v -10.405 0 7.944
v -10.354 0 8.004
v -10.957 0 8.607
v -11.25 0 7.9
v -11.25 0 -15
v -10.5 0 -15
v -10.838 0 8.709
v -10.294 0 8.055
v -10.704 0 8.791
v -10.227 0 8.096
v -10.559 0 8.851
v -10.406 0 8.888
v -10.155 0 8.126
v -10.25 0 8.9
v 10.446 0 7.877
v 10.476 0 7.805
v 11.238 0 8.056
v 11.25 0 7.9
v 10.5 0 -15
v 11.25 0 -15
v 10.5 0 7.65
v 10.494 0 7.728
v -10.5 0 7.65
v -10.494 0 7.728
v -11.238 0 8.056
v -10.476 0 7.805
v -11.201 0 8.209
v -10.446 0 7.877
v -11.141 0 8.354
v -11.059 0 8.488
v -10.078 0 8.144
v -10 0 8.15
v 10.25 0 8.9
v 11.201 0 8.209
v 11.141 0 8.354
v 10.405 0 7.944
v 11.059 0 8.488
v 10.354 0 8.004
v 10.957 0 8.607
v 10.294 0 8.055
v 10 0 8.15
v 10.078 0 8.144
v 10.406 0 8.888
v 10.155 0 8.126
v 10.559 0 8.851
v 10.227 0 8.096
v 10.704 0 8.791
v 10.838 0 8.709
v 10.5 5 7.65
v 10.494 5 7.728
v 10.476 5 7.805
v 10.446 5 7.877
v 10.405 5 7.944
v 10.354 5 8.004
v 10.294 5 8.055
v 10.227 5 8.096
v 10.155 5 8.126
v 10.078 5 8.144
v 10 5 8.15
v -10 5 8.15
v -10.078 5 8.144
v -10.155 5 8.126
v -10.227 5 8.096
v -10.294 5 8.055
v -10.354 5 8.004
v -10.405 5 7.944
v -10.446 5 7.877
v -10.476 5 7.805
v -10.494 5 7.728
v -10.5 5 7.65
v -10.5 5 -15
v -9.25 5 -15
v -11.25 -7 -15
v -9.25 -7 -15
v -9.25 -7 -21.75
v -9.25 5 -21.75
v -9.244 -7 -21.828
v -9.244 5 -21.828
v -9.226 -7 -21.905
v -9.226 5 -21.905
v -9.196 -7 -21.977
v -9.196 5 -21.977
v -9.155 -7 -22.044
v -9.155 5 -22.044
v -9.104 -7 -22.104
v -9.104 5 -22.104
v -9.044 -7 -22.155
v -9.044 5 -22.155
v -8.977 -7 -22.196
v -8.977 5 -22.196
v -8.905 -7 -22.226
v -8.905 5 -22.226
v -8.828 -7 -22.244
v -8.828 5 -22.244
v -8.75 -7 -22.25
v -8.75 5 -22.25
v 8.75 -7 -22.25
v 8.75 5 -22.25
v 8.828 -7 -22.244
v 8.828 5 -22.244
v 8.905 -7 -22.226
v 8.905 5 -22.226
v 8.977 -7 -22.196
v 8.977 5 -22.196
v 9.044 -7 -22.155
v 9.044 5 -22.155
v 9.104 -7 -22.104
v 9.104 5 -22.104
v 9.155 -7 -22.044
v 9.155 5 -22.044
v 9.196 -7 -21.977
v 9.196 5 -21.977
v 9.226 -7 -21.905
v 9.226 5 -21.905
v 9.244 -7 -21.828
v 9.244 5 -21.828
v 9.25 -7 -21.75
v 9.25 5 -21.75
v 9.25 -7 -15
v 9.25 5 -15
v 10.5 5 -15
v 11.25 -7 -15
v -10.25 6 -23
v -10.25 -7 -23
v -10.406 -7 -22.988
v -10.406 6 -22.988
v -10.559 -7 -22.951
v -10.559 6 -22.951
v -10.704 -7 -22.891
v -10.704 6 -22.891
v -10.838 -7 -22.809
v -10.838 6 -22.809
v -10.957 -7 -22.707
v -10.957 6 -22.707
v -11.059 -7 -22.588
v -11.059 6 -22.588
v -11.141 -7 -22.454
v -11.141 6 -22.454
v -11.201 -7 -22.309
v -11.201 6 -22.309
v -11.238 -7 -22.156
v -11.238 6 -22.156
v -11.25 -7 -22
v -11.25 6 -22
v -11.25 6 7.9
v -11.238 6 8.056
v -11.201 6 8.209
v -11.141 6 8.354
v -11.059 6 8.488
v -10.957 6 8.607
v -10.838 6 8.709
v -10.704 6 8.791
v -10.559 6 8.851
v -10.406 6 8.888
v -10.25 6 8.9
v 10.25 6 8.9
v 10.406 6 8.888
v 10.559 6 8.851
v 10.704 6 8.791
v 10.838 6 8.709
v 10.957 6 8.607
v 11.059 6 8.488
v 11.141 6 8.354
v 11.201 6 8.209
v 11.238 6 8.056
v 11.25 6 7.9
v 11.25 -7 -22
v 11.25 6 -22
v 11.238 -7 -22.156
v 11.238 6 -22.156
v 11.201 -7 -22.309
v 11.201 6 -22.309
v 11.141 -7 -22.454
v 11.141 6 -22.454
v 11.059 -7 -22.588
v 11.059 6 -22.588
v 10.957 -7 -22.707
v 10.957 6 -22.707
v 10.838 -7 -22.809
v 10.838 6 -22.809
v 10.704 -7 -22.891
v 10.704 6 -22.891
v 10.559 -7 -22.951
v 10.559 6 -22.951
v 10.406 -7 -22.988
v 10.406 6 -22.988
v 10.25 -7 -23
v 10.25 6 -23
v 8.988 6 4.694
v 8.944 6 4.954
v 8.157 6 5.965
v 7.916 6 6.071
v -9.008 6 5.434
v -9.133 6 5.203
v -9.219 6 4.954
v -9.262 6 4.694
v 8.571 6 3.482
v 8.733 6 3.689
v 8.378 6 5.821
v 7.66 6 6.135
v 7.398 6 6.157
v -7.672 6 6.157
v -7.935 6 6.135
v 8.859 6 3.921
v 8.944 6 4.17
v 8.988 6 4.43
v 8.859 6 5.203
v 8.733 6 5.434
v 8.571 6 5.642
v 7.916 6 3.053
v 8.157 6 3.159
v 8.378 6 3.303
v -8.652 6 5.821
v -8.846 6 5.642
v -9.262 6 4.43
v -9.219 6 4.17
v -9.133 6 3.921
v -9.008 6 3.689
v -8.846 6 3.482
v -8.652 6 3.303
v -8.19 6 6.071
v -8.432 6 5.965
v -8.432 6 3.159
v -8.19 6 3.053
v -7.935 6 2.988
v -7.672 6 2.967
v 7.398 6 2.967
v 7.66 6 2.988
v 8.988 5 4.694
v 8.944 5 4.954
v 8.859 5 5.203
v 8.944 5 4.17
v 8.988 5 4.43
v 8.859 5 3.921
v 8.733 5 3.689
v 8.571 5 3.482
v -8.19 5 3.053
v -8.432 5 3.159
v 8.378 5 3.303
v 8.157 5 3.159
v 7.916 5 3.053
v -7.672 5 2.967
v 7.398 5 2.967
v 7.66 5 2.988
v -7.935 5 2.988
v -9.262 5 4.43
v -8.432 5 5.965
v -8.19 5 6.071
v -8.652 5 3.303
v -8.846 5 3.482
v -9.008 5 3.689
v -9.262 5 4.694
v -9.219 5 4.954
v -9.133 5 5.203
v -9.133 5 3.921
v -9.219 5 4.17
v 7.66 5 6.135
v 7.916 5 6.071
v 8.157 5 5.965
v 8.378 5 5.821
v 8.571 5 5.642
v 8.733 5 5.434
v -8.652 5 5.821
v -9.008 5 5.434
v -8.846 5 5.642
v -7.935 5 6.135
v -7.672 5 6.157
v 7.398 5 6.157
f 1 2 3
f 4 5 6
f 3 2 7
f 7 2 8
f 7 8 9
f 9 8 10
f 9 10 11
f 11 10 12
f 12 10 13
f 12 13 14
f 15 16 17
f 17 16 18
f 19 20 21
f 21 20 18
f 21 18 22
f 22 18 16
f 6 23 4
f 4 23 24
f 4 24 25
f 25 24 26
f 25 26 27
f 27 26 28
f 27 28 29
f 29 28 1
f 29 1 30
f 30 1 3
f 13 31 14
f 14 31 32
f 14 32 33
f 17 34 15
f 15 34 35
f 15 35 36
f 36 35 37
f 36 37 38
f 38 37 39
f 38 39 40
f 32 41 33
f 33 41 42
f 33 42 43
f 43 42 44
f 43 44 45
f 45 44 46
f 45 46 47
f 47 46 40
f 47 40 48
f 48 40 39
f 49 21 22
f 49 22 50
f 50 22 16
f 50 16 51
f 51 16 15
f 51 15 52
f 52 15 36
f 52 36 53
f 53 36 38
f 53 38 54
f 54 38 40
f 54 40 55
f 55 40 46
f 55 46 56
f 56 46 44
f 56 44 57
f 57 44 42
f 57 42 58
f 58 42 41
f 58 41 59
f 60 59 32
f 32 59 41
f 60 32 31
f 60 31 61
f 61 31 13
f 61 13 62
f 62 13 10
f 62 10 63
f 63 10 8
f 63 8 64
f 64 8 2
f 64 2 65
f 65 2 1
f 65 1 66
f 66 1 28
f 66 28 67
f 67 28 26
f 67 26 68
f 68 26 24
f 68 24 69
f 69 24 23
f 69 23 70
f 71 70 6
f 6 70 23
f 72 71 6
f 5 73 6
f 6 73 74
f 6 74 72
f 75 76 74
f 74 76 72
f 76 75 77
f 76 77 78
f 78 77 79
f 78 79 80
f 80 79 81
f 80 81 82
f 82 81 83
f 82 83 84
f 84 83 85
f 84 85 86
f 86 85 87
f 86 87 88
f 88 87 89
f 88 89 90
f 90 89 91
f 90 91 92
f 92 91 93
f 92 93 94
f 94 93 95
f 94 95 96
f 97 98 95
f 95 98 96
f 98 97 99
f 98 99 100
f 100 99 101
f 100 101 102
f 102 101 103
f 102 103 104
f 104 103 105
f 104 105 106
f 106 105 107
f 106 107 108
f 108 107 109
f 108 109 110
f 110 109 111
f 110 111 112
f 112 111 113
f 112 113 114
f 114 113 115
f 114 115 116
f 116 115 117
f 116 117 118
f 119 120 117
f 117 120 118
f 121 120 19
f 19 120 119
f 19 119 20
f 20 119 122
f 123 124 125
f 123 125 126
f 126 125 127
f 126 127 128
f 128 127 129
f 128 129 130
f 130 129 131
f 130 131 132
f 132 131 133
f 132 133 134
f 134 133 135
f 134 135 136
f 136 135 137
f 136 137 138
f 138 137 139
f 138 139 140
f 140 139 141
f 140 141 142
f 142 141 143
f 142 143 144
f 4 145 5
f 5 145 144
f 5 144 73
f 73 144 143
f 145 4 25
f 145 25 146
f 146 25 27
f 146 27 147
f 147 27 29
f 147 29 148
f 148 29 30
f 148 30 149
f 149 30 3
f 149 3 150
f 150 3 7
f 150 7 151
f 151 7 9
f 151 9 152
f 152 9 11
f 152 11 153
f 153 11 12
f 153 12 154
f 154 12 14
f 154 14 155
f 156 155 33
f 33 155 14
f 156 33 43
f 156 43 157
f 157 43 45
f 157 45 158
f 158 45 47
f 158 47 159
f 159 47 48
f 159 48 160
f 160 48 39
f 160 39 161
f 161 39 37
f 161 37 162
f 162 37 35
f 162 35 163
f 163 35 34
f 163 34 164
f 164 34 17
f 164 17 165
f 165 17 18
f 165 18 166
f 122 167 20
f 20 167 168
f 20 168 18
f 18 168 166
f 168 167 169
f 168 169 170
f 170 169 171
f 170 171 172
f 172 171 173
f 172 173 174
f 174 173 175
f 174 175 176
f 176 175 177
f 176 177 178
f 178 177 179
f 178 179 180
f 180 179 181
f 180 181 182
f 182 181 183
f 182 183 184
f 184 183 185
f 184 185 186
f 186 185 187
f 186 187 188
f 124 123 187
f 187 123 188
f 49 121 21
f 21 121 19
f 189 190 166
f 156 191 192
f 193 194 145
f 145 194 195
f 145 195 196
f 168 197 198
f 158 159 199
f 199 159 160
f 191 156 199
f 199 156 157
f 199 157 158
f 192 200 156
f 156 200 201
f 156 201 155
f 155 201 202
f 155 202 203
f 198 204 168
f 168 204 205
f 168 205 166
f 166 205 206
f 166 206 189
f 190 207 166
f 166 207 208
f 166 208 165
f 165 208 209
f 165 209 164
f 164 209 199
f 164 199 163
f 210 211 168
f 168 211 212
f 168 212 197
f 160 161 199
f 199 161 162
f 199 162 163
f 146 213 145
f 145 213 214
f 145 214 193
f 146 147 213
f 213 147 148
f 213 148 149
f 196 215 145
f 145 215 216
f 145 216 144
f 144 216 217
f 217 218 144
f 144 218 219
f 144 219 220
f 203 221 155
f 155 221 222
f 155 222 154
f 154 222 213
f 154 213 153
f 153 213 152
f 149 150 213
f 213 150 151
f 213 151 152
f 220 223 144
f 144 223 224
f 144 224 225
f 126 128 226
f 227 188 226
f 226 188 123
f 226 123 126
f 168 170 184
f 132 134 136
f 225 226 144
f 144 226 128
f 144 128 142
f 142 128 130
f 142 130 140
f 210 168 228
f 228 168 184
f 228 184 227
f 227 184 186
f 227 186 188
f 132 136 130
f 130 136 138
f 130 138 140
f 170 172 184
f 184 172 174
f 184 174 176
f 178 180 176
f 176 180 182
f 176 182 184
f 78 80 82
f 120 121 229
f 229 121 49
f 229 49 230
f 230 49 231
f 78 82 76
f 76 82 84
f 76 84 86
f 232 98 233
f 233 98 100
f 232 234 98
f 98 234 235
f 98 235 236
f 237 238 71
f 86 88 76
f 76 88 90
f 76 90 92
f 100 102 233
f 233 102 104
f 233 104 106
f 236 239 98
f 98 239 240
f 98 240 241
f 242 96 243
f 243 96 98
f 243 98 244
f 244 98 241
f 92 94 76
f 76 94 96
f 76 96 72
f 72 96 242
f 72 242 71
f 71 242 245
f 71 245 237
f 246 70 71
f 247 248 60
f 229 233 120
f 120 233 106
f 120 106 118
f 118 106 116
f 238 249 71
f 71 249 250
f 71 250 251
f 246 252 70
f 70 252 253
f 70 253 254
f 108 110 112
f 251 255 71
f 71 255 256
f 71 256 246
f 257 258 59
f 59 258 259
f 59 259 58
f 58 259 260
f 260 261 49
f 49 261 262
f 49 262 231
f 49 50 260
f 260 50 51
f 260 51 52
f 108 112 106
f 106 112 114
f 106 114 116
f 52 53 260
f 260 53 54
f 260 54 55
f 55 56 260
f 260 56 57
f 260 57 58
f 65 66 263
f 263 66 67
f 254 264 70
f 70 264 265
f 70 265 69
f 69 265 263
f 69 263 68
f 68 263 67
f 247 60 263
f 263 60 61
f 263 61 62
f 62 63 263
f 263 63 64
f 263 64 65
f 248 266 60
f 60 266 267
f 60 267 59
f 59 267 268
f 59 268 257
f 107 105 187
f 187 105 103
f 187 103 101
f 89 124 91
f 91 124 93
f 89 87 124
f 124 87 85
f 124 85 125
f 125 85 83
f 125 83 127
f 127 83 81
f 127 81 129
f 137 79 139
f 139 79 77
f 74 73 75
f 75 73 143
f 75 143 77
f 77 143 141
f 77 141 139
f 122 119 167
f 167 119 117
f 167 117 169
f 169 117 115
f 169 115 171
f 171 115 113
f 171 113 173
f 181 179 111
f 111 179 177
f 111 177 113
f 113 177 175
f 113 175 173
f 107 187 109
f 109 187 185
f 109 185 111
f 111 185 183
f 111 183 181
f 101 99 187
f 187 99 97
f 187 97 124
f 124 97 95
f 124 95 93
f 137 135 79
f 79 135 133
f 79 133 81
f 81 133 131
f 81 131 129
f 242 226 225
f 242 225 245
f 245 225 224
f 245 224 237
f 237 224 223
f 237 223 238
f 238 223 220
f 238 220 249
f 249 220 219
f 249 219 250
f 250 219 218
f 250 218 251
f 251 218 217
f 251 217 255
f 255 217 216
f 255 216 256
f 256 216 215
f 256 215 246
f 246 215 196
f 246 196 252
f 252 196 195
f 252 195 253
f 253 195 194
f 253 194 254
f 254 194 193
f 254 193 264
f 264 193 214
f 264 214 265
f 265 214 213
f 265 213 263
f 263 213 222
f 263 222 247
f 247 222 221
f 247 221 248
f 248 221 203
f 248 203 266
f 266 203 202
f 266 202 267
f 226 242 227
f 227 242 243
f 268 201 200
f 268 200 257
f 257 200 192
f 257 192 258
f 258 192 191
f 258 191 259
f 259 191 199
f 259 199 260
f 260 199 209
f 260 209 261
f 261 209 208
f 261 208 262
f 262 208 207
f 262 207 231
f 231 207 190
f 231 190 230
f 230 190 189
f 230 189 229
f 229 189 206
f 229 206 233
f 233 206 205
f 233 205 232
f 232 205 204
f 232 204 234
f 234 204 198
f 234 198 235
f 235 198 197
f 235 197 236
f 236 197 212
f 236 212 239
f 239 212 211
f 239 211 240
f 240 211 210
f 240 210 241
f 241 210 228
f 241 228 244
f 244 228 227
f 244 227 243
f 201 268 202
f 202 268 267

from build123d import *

# Parameters (mm, degrees)
BOSS_EXTRUDE33_DEPTH = 5
BOSS_EXTRUDE34_START = 5
BOSS_EXTRUDE34_DEPTH = 1
BOSS_EXTRUDE35_START = -7
BOSS_EXTRUDE35_DEPTH = 7
CUT_EXTRUDE2_DEPTH   = 2


with BuildPart() as part:
    # lid → Boss-Extrude33 (new body)
    with BuildSketch(Plane(origin=(0, 0, 0), x_dir=(1, 0, 0), z_dir=(0, 1, 0))):
        with BuildLine():
            Line((-11.25, 22), (-11.25, -7.9))
            ThreePointArc((-11.25, -7.9), (-10.957106781, -8.607106781), (-10.25, -8.9))
            Line((-10.25, -8.9), (10.25, -8.9))
            ThreePointArc((10.25, -8.9), (10.957106781, -8.607106781), (11.25, -7.9))
            Line((11.25, -7.9), (11.25, 22))
            ThreePointArc((11.25, 22), (10.957106781, 22.707106781), (10.25, 23))
            Line((10.25, 23), (-10.25, 23))
            ThreePointArc((-10.25, 23), (-10.957106781, 22.707106781), (-11.25, 22))
        make_face()
        with BuildLine():
            Line((9.25, 21.75), (9.25, 15))
            Line((9.25, 15), (10.5, 15))
            Line((10.5, 15), (10.5, -7.65))
            ThreePointArc((10.5, -7.65), (10.353553391, -8.003553391), (10, -8.15))
            Line((10, -8.15), (-10, -8.15))
            ThreePointArc((-10, -8.15), (-10.353553391, -8.003553391), (-10.5, -7.65))
            Line((-10.5, -7.65), (-10.5, 15))
            Line((-10.5, 15), (-9.25, 15))
            Line((-9.25, 15), (-9.25, 21.75))
            ThreePointArc((-9.25, 21.75), (-9.103553391, 22.103553391), (-8.75, 22.25))
            Line((-8.75, 22.25), (8.75, 22.25))
            ThreePointArc((8.75, 22.25), (9.103553391, 22.103553391), (9.25, 21.75))
        make_face(mode=Mode.SUBTRACT)
    extrude(amount=BOSS_EXTRUDE33_DEPTH)

    # lid<5> → Boss-Extrude34 (add)
    with BuildSketch(Plane(origin=(0, 0, 0), x_dir=(1, 0, 0), z_dir=(0, 1, 0)).offset(BOSS_EXTRUDE34_START)):
        with BuildLine():
            Line((-11.25, 22), (-11.25, -7.9))
            ThreePointArc((-11.25, -7.9), (-10.957106781, -8.607106781), (-10.25, -8.9))
            Line((-10.25, -8.9), (10.25, -8.9))
            ThreePointArc((10.25, -8.9), (10.957106781, -8.607106781), (11.25, -7.9))
            Line((11.25, -7.9), (11.25, 22))
            ThreePointArc((11.25, 22), (10.957106781, 22.707106781), (10.25, 23))
            Line((10.25, 23), (-10.25, 23))
            ThreePointArc((-10.25, 23), (-10.957106781, 22.707106781), (-11.25, 22))
        make_face()
    extrude(amount=BOSS_EXTRUDE34_DEPTH)

    # lid<6> → Boss-Extrude35 (add)
    with BuildSketch(Plane(origin=(0, 0, 0), x_dir=(1, 0, 0), z_dir=(0, 1, 0)).offset(BOSS_EXTRUDE35_START)):
        with BuildLine():
            Line((9.25, 21.75), (9.25, 15))
            Line((9.25, 15), (10.5, 15))
            Line((10.5, 15), (11.25, 15))
            Line((11.25, 15), (11.25, 22))
            ThreePointArc((11.25, 22), (10.957106781, 22.707106781), (10.25, 23))
            Line((10.25, 23), (-10.25, 23))
            ThreePointArc((-10.25, 23), (-10.957106781, 22.707106781), (-11.25, 22))
            Line((-11.25, 22), (-11.25, 15))
            Line((-11.25, 15), (-10.5, 15))
            Line((-10.5, 15), (-9.25, 15))
            Line((-9.25, 15), (-9.25, 21.75))
            ThreePointArc((-9.25, 21.75), (-9.103553391, 22.103553391), (-8.75, 22.25))
            Line((-8.75, 22.25), (8.75, 22.25))
            ThreePointArc((8.75, 22.25), (9.103553391, 22.103553391), (9.25, 21.75))
        make_face()
    extrude(amount=BOSS_EXTRUDE35_DEPTH)

    # Sketch20 → Cut-Extrude2 (cut)
    with BuildSketch(Plane(origin=(0, 6, 0), x_dir=(1, 0, 0), z_dir=(0, 1, 0))):
        with BuildLine():
            Line((-7.672345443, -2.966739157), (7.39782559, -2.966739157))
            ThreePointArc((7.39782559, -2.966739157), (8.993011438, -4.561925004), (7.39782559, -6.157110852))
            Line((7.39782559, -6.157110852), (-7.672345443, -6.157110852))
            ThreePointArc((-7.672345443, -6.157110852), (-9.26753129, -4.561925004), (-7.672345443, -2.966739157))
        make_face()
    extrude(amount=-CUT_EXTRUDE2_DEPTH, mode=Mode.SUBTRACT)


solid = part.part
